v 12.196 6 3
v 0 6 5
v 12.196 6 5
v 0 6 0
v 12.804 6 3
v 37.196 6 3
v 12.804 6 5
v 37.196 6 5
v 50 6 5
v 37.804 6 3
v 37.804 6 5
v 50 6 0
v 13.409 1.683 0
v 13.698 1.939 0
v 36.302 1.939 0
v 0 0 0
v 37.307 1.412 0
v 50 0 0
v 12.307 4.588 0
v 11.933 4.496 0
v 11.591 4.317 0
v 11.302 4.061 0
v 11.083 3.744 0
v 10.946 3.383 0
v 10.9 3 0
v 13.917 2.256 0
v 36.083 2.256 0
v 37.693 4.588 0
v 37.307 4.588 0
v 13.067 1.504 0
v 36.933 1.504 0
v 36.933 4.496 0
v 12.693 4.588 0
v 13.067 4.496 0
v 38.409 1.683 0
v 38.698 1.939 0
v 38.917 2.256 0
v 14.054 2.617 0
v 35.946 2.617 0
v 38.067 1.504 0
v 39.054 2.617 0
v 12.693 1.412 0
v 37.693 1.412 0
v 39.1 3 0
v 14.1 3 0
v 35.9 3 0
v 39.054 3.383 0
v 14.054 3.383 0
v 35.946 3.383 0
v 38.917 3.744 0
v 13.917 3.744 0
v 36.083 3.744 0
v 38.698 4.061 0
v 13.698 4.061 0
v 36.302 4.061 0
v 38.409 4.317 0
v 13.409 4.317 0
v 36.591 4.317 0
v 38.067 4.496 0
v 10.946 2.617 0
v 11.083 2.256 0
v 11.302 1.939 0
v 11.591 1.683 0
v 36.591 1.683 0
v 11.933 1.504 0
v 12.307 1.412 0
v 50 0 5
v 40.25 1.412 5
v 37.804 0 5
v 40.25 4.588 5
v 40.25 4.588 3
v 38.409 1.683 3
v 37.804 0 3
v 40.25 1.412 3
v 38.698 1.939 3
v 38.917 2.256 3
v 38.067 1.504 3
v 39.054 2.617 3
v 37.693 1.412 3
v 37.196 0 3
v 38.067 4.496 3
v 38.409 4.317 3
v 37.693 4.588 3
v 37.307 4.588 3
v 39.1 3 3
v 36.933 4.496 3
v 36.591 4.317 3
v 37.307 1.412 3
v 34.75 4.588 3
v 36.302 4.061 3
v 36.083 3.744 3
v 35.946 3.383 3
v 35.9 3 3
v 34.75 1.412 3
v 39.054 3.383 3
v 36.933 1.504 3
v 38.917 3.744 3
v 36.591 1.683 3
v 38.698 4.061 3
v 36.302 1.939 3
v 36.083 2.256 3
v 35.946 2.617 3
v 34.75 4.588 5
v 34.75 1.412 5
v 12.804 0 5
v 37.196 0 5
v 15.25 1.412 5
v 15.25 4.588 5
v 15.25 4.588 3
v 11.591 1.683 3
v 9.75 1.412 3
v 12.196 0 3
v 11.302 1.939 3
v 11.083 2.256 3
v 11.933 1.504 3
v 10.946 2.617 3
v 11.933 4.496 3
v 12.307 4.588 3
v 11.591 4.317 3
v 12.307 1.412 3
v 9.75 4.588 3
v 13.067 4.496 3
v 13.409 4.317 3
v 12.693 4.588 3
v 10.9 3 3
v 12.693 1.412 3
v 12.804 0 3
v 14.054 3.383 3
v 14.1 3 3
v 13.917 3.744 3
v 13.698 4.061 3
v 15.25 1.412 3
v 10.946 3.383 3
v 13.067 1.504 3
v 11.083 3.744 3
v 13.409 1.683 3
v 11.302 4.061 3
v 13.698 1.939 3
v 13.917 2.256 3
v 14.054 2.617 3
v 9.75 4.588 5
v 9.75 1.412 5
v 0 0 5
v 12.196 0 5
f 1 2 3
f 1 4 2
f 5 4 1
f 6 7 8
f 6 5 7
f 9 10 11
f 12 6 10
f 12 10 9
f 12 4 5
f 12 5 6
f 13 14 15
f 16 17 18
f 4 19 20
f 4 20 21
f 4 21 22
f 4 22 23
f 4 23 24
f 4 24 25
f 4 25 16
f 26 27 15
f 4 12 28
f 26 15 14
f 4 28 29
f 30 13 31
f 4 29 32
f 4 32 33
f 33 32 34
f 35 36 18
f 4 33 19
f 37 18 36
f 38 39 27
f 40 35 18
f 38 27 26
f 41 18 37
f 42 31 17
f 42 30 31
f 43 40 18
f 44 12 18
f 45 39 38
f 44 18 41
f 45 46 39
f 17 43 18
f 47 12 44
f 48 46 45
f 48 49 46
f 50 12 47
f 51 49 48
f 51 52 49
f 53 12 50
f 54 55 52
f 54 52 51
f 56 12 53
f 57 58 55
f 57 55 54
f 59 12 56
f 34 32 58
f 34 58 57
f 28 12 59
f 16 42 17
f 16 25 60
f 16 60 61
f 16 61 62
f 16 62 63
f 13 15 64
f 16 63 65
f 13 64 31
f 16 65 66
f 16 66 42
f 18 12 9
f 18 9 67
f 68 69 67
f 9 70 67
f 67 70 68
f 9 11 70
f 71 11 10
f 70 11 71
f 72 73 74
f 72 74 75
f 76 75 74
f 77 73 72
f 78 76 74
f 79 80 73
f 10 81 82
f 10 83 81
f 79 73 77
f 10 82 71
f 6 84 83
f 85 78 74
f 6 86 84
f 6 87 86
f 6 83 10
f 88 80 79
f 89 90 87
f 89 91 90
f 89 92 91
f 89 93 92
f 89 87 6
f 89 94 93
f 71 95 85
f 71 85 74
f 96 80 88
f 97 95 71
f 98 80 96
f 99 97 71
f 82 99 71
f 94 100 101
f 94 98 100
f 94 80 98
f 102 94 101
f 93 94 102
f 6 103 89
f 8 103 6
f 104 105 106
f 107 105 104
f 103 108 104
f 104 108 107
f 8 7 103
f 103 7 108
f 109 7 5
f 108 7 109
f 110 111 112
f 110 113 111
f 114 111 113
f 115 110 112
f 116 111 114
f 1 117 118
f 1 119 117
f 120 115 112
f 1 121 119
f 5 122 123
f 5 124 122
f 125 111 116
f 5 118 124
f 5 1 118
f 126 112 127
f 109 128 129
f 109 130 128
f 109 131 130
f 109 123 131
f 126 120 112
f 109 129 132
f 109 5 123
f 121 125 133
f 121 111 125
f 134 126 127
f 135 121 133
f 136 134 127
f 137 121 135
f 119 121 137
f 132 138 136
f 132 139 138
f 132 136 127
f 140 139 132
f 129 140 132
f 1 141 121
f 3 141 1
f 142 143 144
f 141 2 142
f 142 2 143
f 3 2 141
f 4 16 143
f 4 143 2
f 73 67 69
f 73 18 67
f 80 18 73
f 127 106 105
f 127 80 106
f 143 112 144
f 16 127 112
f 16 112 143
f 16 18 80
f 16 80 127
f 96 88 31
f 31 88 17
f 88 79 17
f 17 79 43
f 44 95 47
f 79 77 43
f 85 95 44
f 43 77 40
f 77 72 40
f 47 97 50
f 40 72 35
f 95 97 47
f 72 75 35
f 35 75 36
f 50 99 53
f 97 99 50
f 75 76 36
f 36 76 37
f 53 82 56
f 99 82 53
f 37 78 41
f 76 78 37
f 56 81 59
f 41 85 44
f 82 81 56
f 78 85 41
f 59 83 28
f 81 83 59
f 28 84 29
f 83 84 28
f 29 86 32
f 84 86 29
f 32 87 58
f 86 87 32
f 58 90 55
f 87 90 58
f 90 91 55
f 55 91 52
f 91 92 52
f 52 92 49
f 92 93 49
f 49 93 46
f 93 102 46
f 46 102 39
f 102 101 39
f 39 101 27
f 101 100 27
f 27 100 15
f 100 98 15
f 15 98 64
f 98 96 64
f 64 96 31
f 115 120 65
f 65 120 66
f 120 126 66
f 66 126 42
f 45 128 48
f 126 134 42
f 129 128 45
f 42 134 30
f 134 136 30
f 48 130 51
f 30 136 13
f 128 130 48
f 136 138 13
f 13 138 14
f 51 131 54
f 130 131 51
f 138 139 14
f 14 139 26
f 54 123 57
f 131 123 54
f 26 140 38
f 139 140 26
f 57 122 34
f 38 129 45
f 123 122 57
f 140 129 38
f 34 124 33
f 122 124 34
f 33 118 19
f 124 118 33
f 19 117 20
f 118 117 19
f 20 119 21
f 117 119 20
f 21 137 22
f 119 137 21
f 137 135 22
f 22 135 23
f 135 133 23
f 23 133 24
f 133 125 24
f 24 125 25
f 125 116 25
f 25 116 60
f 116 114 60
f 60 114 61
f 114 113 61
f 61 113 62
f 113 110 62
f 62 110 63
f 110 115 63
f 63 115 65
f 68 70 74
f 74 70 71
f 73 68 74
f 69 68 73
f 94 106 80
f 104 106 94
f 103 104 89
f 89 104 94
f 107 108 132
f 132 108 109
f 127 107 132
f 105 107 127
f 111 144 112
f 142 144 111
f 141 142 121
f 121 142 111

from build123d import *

# Parameters (mm, degrees)
SKETCH_W        = 50
SKETCH_H        = 6
PAD_DEPTH       = 5
SKETCH001_R     = 1.6
POCKET_DEPTH    = 5
POCKET001_DEPTH = 2


with BuildPart() as part:
    # Sketch → Pad (new body)
    with BuildSketch(Plane.XY):
        with Locations((25, 3)):
            Rectangle(SKETCH_W, SKETCH_H)
    extrude(amount=PAD_DEPTH)

    # Sketch001 (on Face6 of Pad) → Pocket (cut)
    with BuildSketch(Plane.XY.offset(5)):
        with Locations((12.5, 3)):
            Circle(SKETCH001_R)
        with Locations((37.5, 3)):
            Circle(SKETCH001_R)
    extrude(amount=-POCKET_DEPTH, mode=Mode.SUBTRACT)

    # Sketch002 (on Face5 of Pocket) → Pocket001 (cut)
    with BuildSketch(Plane.XY.offset(5)):
        Polygon((15.25, 4.587713), (12.5, 6.175426), (9.75, 4.587713), (9.75, 1.412287), (12.5, -0.175426), (15.25, 1.412287), align=None)
        Polygon((40.25, 1.412287), (40.25, 4.587713), (37.5, 6.175426), (34.75, 4.587713), (34.75, 1.412287), (37.5, -0.175426), align=None)
    extrude(amount=-POCKET001_DEPTH, mode=Mode.SUBTRACT)


solid = part.part
